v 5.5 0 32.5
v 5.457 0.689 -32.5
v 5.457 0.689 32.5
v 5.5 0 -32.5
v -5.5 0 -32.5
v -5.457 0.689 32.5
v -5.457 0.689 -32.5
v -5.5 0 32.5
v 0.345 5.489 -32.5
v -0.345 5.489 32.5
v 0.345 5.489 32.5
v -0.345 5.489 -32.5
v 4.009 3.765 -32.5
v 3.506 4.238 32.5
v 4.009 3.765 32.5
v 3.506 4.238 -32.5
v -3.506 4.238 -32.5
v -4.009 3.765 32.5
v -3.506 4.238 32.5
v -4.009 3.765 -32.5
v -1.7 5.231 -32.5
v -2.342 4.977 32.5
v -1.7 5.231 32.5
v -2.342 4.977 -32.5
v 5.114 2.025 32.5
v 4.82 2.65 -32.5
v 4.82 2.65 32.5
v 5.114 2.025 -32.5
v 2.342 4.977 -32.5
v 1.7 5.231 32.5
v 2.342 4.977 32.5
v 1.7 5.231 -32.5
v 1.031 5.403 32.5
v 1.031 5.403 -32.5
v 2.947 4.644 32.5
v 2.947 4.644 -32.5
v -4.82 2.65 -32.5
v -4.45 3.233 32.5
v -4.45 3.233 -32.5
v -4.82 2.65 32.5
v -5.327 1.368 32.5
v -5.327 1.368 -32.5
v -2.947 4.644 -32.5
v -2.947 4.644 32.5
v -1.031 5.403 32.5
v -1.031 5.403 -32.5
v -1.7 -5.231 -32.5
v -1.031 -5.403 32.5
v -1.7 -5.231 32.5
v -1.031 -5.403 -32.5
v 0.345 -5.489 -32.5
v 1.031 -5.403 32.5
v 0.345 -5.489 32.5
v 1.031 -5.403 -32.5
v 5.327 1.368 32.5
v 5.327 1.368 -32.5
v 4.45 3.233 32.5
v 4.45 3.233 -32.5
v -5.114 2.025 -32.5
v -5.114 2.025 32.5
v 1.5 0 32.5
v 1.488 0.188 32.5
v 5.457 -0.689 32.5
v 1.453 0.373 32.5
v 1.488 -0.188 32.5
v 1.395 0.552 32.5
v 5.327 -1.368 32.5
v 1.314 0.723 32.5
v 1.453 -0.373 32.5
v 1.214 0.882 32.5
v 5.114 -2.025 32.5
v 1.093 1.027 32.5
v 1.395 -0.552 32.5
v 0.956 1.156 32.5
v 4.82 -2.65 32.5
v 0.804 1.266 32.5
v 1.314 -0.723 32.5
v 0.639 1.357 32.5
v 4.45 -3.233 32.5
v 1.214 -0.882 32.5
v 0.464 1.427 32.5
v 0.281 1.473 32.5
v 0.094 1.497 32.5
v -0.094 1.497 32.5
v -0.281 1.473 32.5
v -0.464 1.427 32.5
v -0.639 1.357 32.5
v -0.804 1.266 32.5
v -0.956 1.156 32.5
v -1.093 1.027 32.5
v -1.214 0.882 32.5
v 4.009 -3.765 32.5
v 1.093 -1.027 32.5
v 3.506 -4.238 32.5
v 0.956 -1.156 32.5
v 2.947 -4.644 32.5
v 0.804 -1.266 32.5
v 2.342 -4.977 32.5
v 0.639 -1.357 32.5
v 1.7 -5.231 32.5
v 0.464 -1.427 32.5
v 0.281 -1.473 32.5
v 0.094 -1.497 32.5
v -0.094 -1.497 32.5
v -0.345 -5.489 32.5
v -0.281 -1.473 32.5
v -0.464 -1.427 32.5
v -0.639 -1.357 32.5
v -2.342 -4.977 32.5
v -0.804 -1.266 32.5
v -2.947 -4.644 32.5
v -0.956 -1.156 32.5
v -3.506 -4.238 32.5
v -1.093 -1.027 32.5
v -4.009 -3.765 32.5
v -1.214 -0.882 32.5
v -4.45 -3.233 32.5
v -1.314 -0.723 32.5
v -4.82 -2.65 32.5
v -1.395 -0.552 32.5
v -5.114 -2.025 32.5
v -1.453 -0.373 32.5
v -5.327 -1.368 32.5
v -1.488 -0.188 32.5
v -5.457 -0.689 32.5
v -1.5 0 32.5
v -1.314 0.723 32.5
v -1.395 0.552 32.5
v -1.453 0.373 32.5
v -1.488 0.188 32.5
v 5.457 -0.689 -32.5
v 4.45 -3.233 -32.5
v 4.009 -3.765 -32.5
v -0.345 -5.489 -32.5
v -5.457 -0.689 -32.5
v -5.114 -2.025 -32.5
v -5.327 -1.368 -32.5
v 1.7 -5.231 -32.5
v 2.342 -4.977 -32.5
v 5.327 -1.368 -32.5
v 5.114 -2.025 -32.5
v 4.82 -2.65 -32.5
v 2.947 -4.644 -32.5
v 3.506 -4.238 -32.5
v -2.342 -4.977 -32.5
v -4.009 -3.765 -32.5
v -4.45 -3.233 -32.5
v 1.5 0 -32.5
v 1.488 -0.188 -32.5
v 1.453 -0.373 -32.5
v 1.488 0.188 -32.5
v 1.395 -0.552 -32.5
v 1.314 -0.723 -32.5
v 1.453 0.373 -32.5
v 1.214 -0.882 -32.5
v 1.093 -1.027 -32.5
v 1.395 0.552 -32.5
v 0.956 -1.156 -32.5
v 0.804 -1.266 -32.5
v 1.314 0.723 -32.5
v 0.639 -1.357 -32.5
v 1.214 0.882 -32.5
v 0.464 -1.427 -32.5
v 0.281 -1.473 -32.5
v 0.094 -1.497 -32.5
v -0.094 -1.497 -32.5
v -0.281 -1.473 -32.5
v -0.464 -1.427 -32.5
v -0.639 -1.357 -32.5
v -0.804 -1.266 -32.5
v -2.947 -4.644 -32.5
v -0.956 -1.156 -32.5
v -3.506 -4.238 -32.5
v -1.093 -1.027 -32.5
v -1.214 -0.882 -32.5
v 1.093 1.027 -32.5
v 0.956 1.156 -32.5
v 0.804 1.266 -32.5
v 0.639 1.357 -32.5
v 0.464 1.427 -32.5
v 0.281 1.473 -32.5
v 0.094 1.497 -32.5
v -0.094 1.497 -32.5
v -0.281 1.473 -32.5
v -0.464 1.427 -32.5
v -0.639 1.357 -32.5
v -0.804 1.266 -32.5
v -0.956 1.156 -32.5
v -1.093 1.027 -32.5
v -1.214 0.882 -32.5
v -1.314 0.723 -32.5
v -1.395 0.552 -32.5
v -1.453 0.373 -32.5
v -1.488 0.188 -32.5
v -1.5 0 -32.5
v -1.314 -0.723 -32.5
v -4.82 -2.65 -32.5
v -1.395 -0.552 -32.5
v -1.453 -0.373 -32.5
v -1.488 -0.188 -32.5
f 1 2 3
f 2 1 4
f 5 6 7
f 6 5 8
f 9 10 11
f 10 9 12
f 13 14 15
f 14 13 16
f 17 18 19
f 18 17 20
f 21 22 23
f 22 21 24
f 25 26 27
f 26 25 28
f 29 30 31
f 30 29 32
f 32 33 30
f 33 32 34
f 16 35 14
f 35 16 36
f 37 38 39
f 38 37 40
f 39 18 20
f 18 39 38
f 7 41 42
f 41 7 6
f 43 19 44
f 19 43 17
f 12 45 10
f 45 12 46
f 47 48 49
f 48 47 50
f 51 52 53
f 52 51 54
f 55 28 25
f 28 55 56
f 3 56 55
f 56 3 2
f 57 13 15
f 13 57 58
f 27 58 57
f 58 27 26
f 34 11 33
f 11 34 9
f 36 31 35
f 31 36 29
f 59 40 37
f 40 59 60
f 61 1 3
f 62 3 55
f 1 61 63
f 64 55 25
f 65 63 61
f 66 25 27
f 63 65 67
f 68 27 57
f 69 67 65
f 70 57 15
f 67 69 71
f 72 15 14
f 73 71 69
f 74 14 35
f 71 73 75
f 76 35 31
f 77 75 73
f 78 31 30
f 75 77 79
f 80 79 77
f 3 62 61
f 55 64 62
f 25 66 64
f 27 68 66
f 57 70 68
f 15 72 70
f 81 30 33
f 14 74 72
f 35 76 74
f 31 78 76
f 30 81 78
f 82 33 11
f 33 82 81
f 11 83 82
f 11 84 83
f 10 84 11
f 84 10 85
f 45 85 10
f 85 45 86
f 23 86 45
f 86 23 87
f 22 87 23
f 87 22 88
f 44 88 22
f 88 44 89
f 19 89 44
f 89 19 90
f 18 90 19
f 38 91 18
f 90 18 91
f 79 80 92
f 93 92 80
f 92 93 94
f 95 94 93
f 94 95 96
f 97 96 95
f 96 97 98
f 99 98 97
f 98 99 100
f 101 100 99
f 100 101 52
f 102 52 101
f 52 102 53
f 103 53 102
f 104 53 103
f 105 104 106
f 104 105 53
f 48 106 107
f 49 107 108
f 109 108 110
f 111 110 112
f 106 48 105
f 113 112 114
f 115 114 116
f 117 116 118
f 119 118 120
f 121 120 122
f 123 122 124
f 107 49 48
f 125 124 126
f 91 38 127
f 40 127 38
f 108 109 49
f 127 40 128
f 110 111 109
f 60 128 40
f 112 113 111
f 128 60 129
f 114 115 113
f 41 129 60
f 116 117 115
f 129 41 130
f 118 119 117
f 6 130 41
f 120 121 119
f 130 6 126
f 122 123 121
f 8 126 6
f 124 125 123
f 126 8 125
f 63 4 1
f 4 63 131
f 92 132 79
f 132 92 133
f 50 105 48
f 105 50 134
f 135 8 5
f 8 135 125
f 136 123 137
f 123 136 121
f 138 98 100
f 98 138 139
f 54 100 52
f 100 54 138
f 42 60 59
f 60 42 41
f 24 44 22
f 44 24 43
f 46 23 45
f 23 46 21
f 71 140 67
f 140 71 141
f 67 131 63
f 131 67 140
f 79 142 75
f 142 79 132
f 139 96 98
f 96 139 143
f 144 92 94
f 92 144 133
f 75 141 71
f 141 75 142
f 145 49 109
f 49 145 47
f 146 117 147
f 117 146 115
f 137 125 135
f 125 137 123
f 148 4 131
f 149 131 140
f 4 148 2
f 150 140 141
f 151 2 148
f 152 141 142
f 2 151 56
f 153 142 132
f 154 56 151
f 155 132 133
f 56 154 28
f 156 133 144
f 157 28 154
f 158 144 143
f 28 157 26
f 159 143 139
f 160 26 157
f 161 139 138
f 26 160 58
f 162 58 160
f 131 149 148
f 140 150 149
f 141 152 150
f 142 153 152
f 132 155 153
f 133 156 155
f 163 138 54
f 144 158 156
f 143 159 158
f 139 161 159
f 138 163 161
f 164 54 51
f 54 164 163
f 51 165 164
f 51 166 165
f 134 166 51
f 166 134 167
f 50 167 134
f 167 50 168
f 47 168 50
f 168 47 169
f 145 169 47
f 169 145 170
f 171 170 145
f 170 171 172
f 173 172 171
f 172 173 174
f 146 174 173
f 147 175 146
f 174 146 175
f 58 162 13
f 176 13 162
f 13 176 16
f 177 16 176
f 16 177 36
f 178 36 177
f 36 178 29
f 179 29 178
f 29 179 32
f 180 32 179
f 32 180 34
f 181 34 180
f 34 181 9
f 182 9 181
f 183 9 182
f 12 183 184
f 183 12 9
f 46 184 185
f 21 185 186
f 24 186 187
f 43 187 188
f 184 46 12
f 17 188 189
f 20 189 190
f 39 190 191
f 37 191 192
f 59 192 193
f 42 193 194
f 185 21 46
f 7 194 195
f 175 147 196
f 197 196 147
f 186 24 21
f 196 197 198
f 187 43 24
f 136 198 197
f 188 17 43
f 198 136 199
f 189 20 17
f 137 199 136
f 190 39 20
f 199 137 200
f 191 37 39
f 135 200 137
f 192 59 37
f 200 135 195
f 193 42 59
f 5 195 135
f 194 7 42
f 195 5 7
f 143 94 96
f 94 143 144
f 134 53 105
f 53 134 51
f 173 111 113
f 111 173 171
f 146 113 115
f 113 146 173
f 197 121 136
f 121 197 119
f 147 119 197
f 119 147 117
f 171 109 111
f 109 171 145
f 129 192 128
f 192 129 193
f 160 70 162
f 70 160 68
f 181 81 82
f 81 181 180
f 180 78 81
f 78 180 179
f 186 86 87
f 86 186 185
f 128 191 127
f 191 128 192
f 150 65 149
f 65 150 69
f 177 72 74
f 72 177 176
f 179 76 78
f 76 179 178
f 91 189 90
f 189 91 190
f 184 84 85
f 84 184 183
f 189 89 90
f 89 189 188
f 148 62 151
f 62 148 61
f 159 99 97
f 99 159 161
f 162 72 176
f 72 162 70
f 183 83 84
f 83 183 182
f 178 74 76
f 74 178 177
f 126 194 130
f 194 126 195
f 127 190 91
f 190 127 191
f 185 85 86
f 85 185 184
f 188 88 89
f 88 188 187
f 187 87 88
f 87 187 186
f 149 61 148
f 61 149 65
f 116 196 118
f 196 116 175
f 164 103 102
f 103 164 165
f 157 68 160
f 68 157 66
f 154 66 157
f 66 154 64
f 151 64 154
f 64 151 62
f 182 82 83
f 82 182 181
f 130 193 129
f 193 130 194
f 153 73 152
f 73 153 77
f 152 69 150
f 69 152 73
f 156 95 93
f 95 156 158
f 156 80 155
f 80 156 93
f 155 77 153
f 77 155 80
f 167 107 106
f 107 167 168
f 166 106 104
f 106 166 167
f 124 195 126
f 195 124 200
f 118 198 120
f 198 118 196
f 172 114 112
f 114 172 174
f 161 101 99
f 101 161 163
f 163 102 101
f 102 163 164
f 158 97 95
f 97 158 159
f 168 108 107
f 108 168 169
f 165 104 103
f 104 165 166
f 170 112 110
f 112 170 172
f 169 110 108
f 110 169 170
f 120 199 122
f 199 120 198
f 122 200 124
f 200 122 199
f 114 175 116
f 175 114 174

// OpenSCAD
$fn = 50;


difference() {
	union() {
		translate(v = [0, 0, -32.5000000000]) {
			cylinder(h = 65, r = 5.5000000000);
		}
	}
	union() {
		translate(v = [0, 0, -100.0000000000]) {
			cylinder(h = 200, r = 1.5000000000);
		}
	}
}
